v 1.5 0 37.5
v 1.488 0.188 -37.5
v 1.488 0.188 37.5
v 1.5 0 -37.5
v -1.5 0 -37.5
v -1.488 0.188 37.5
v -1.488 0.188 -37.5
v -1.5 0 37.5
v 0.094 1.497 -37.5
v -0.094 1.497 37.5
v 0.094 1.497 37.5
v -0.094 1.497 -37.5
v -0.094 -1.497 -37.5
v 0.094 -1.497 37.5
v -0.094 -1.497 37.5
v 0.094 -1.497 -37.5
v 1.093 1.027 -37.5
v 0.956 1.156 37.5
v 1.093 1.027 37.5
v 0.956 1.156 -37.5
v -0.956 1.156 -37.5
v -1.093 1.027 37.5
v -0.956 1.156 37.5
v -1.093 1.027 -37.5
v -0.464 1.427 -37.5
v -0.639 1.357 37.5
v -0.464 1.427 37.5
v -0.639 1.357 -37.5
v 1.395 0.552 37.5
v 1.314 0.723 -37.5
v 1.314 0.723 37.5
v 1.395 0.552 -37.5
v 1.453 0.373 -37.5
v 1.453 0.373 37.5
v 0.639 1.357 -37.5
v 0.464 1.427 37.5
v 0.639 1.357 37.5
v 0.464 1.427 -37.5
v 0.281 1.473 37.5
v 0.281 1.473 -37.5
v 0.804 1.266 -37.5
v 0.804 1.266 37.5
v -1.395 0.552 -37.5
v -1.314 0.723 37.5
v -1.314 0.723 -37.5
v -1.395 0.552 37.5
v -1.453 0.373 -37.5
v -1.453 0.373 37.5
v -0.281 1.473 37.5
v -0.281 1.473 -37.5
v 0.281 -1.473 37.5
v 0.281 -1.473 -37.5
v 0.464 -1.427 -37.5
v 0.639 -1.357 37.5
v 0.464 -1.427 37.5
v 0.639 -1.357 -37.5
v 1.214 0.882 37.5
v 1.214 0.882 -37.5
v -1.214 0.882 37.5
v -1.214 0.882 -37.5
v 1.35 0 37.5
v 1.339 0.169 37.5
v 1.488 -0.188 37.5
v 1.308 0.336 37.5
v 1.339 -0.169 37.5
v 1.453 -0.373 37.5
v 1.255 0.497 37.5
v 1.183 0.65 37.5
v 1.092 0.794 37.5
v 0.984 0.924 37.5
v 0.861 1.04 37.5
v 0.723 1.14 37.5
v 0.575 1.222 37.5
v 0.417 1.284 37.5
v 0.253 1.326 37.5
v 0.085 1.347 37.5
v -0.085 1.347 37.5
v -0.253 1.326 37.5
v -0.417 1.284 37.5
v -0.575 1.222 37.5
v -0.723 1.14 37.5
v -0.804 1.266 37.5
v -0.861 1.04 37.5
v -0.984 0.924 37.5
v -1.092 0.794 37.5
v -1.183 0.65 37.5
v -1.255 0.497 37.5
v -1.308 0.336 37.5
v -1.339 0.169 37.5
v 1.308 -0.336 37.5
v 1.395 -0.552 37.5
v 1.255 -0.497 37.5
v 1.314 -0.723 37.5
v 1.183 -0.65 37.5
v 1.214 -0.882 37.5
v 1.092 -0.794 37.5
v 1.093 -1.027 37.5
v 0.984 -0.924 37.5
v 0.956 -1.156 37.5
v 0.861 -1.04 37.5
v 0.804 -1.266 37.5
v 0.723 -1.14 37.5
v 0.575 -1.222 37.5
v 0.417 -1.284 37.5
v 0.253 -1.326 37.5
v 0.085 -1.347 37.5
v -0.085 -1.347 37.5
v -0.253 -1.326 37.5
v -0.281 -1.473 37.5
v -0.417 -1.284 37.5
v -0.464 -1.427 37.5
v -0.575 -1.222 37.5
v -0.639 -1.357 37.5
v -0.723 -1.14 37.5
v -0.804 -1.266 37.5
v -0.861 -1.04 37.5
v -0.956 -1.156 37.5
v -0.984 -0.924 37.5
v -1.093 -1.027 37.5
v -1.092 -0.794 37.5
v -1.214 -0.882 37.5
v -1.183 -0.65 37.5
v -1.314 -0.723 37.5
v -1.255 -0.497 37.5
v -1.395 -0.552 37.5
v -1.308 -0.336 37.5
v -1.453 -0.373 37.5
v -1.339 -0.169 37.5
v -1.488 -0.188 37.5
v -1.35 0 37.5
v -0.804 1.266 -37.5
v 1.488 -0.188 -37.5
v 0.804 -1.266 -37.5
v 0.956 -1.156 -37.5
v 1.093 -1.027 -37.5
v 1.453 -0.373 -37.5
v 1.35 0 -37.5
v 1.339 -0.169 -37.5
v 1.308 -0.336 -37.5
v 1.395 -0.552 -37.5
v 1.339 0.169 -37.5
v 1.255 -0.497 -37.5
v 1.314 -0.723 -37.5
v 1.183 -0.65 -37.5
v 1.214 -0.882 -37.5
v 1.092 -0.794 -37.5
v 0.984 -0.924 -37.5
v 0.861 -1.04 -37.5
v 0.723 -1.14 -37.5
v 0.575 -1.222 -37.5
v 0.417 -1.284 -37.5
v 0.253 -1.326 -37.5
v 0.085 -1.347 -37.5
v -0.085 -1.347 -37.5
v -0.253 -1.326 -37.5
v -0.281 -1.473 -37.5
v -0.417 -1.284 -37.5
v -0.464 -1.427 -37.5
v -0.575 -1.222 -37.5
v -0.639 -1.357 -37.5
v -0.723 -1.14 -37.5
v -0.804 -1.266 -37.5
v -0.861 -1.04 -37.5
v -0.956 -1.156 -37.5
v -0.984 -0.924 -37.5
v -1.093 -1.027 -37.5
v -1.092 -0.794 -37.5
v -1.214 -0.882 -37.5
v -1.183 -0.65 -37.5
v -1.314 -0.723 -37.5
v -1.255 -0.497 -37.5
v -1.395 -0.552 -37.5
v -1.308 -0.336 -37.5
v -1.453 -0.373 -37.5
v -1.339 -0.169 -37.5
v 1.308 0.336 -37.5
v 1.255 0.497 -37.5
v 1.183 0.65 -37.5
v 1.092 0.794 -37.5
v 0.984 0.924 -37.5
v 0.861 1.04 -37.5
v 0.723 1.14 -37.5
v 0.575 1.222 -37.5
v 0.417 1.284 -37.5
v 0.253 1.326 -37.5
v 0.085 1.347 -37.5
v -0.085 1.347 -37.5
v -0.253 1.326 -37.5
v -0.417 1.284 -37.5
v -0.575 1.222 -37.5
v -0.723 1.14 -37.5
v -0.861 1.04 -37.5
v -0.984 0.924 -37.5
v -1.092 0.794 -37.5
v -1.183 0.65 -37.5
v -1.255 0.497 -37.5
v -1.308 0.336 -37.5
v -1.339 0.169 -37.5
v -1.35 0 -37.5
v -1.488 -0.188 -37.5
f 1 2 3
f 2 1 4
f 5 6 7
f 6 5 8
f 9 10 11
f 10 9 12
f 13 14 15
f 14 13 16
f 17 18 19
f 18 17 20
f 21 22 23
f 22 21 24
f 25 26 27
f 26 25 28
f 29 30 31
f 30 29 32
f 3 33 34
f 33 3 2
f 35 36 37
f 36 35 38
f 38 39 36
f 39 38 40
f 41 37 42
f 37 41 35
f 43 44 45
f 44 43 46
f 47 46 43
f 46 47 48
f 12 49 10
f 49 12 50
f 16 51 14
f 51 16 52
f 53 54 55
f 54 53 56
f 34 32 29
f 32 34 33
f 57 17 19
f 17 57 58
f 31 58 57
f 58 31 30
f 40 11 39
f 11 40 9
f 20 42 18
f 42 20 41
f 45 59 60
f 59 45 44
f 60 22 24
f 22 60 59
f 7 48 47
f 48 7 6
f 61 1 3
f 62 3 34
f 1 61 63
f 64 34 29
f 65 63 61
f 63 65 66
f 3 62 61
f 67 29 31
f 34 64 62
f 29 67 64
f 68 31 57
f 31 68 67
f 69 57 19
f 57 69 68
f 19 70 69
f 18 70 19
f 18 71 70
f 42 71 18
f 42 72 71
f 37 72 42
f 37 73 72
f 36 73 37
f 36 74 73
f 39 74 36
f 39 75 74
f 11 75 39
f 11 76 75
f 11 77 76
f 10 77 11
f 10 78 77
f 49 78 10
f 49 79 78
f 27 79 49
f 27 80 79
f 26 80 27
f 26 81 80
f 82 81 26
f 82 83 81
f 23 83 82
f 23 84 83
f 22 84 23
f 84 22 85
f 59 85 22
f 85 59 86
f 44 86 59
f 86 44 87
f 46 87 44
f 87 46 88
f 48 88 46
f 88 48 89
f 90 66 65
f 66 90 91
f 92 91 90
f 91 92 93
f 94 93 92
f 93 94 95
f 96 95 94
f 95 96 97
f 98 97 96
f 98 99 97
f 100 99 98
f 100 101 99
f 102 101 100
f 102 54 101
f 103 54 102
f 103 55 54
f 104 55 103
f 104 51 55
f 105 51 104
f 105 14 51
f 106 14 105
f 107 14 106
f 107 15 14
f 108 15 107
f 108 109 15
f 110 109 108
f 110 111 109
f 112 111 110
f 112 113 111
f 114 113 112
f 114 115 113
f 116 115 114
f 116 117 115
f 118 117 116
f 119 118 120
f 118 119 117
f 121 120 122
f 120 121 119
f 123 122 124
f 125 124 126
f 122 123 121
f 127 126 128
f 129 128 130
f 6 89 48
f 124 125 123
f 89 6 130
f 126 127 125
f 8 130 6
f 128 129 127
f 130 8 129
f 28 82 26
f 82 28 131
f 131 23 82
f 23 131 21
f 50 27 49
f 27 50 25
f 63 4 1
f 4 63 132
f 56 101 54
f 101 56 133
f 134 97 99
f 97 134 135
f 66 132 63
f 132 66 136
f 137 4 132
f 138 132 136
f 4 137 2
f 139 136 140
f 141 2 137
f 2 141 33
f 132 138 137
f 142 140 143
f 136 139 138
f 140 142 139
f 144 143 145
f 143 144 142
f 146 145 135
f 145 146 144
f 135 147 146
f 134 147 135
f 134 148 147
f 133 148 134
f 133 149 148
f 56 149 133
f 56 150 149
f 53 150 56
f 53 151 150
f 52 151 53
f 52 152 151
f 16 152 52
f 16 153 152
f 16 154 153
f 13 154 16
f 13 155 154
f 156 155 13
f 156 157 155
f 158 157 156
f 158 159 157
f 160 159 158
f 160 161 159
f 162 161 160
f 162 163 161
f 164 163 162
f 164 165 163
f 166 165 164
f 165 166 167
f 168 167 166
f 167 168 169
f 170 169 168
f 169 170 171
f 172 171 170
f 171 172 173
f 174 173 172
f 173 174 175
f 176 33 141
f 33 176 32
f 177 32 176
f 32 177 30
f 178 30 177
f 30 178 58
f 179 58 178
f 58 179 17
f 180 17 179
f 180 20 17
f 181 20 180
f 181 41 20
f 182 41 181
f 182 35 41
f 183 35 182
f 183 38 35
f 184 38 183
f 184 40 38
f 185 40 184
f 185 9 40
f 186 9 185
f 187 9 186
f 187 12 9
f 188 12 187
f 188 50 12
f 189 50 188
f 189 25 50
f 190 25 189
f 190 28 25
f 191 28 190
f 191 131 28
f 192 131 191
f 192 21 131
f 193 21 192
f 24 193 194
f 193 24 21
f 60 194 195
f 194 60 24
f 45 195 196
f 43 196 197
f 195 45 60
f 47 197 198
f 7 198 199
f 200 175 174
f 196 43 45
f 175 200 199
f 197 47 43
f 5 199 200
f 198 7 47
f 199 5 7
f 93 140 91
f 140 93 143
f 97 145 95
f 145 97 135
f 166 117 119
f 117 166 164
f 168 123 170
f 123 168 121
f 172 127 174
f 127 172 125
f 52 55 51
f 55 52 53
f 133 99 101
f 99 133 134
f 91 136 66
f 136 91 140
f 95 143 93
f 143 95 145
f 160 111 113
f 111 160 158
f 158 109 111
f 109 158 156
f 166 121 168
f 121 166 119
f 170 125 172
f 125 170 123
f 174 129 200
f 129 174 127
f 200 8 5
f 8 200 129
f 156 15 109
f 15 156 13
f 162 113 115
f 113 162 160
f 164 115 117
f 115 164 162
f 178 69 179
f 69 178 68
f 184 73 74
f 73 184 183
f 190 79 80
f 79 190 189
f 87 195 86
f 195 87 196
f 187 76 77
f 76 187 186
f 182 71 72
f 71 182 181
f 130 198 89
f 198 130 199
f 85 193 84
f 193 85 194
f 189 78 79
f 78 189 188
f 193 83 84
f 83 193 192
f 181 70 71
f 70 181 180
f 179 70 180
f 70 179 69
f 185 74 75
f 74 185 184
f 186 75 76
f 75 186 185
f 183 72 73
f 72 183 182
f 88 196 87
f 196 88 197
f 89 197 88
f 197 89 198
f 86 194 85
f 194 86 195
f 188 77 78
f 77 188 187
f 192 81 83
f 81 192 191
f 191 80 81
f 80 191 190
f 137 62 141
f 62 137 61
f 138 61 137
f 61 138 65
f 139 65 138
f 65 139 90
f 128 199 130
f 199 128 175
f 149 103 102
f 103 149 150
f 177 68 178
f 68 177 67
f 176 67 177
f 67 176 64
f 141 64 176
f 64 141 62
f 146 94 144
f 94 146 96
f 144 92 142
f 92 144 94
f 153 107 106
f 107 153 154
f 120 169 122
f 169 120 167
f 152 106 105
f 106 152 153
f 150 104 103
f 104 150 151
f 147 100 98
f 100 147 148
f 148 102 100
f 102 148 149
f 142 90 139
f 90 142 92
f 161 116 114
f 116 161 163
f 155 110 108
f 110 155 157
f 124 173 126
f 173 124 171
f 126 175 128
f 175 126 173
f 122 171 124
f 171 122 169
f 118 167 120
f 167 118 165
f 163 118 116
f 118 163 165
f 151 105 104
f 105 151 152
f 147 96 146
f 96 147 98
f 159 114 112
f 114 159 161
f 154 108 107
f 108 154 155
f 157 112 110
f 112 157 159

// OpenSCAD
$fn = 50;


difference() {
	union() {
		translate(v = [0, 0, -37.5000000000]) {
			cylinder(h = 75, r = 1.5000000000);
		}
	}
	union() {
		translate(v = [0, 0, -100.0000000000]) {
			cylinder(h = 200, r = 1.3500000000);
		}
	}
}
